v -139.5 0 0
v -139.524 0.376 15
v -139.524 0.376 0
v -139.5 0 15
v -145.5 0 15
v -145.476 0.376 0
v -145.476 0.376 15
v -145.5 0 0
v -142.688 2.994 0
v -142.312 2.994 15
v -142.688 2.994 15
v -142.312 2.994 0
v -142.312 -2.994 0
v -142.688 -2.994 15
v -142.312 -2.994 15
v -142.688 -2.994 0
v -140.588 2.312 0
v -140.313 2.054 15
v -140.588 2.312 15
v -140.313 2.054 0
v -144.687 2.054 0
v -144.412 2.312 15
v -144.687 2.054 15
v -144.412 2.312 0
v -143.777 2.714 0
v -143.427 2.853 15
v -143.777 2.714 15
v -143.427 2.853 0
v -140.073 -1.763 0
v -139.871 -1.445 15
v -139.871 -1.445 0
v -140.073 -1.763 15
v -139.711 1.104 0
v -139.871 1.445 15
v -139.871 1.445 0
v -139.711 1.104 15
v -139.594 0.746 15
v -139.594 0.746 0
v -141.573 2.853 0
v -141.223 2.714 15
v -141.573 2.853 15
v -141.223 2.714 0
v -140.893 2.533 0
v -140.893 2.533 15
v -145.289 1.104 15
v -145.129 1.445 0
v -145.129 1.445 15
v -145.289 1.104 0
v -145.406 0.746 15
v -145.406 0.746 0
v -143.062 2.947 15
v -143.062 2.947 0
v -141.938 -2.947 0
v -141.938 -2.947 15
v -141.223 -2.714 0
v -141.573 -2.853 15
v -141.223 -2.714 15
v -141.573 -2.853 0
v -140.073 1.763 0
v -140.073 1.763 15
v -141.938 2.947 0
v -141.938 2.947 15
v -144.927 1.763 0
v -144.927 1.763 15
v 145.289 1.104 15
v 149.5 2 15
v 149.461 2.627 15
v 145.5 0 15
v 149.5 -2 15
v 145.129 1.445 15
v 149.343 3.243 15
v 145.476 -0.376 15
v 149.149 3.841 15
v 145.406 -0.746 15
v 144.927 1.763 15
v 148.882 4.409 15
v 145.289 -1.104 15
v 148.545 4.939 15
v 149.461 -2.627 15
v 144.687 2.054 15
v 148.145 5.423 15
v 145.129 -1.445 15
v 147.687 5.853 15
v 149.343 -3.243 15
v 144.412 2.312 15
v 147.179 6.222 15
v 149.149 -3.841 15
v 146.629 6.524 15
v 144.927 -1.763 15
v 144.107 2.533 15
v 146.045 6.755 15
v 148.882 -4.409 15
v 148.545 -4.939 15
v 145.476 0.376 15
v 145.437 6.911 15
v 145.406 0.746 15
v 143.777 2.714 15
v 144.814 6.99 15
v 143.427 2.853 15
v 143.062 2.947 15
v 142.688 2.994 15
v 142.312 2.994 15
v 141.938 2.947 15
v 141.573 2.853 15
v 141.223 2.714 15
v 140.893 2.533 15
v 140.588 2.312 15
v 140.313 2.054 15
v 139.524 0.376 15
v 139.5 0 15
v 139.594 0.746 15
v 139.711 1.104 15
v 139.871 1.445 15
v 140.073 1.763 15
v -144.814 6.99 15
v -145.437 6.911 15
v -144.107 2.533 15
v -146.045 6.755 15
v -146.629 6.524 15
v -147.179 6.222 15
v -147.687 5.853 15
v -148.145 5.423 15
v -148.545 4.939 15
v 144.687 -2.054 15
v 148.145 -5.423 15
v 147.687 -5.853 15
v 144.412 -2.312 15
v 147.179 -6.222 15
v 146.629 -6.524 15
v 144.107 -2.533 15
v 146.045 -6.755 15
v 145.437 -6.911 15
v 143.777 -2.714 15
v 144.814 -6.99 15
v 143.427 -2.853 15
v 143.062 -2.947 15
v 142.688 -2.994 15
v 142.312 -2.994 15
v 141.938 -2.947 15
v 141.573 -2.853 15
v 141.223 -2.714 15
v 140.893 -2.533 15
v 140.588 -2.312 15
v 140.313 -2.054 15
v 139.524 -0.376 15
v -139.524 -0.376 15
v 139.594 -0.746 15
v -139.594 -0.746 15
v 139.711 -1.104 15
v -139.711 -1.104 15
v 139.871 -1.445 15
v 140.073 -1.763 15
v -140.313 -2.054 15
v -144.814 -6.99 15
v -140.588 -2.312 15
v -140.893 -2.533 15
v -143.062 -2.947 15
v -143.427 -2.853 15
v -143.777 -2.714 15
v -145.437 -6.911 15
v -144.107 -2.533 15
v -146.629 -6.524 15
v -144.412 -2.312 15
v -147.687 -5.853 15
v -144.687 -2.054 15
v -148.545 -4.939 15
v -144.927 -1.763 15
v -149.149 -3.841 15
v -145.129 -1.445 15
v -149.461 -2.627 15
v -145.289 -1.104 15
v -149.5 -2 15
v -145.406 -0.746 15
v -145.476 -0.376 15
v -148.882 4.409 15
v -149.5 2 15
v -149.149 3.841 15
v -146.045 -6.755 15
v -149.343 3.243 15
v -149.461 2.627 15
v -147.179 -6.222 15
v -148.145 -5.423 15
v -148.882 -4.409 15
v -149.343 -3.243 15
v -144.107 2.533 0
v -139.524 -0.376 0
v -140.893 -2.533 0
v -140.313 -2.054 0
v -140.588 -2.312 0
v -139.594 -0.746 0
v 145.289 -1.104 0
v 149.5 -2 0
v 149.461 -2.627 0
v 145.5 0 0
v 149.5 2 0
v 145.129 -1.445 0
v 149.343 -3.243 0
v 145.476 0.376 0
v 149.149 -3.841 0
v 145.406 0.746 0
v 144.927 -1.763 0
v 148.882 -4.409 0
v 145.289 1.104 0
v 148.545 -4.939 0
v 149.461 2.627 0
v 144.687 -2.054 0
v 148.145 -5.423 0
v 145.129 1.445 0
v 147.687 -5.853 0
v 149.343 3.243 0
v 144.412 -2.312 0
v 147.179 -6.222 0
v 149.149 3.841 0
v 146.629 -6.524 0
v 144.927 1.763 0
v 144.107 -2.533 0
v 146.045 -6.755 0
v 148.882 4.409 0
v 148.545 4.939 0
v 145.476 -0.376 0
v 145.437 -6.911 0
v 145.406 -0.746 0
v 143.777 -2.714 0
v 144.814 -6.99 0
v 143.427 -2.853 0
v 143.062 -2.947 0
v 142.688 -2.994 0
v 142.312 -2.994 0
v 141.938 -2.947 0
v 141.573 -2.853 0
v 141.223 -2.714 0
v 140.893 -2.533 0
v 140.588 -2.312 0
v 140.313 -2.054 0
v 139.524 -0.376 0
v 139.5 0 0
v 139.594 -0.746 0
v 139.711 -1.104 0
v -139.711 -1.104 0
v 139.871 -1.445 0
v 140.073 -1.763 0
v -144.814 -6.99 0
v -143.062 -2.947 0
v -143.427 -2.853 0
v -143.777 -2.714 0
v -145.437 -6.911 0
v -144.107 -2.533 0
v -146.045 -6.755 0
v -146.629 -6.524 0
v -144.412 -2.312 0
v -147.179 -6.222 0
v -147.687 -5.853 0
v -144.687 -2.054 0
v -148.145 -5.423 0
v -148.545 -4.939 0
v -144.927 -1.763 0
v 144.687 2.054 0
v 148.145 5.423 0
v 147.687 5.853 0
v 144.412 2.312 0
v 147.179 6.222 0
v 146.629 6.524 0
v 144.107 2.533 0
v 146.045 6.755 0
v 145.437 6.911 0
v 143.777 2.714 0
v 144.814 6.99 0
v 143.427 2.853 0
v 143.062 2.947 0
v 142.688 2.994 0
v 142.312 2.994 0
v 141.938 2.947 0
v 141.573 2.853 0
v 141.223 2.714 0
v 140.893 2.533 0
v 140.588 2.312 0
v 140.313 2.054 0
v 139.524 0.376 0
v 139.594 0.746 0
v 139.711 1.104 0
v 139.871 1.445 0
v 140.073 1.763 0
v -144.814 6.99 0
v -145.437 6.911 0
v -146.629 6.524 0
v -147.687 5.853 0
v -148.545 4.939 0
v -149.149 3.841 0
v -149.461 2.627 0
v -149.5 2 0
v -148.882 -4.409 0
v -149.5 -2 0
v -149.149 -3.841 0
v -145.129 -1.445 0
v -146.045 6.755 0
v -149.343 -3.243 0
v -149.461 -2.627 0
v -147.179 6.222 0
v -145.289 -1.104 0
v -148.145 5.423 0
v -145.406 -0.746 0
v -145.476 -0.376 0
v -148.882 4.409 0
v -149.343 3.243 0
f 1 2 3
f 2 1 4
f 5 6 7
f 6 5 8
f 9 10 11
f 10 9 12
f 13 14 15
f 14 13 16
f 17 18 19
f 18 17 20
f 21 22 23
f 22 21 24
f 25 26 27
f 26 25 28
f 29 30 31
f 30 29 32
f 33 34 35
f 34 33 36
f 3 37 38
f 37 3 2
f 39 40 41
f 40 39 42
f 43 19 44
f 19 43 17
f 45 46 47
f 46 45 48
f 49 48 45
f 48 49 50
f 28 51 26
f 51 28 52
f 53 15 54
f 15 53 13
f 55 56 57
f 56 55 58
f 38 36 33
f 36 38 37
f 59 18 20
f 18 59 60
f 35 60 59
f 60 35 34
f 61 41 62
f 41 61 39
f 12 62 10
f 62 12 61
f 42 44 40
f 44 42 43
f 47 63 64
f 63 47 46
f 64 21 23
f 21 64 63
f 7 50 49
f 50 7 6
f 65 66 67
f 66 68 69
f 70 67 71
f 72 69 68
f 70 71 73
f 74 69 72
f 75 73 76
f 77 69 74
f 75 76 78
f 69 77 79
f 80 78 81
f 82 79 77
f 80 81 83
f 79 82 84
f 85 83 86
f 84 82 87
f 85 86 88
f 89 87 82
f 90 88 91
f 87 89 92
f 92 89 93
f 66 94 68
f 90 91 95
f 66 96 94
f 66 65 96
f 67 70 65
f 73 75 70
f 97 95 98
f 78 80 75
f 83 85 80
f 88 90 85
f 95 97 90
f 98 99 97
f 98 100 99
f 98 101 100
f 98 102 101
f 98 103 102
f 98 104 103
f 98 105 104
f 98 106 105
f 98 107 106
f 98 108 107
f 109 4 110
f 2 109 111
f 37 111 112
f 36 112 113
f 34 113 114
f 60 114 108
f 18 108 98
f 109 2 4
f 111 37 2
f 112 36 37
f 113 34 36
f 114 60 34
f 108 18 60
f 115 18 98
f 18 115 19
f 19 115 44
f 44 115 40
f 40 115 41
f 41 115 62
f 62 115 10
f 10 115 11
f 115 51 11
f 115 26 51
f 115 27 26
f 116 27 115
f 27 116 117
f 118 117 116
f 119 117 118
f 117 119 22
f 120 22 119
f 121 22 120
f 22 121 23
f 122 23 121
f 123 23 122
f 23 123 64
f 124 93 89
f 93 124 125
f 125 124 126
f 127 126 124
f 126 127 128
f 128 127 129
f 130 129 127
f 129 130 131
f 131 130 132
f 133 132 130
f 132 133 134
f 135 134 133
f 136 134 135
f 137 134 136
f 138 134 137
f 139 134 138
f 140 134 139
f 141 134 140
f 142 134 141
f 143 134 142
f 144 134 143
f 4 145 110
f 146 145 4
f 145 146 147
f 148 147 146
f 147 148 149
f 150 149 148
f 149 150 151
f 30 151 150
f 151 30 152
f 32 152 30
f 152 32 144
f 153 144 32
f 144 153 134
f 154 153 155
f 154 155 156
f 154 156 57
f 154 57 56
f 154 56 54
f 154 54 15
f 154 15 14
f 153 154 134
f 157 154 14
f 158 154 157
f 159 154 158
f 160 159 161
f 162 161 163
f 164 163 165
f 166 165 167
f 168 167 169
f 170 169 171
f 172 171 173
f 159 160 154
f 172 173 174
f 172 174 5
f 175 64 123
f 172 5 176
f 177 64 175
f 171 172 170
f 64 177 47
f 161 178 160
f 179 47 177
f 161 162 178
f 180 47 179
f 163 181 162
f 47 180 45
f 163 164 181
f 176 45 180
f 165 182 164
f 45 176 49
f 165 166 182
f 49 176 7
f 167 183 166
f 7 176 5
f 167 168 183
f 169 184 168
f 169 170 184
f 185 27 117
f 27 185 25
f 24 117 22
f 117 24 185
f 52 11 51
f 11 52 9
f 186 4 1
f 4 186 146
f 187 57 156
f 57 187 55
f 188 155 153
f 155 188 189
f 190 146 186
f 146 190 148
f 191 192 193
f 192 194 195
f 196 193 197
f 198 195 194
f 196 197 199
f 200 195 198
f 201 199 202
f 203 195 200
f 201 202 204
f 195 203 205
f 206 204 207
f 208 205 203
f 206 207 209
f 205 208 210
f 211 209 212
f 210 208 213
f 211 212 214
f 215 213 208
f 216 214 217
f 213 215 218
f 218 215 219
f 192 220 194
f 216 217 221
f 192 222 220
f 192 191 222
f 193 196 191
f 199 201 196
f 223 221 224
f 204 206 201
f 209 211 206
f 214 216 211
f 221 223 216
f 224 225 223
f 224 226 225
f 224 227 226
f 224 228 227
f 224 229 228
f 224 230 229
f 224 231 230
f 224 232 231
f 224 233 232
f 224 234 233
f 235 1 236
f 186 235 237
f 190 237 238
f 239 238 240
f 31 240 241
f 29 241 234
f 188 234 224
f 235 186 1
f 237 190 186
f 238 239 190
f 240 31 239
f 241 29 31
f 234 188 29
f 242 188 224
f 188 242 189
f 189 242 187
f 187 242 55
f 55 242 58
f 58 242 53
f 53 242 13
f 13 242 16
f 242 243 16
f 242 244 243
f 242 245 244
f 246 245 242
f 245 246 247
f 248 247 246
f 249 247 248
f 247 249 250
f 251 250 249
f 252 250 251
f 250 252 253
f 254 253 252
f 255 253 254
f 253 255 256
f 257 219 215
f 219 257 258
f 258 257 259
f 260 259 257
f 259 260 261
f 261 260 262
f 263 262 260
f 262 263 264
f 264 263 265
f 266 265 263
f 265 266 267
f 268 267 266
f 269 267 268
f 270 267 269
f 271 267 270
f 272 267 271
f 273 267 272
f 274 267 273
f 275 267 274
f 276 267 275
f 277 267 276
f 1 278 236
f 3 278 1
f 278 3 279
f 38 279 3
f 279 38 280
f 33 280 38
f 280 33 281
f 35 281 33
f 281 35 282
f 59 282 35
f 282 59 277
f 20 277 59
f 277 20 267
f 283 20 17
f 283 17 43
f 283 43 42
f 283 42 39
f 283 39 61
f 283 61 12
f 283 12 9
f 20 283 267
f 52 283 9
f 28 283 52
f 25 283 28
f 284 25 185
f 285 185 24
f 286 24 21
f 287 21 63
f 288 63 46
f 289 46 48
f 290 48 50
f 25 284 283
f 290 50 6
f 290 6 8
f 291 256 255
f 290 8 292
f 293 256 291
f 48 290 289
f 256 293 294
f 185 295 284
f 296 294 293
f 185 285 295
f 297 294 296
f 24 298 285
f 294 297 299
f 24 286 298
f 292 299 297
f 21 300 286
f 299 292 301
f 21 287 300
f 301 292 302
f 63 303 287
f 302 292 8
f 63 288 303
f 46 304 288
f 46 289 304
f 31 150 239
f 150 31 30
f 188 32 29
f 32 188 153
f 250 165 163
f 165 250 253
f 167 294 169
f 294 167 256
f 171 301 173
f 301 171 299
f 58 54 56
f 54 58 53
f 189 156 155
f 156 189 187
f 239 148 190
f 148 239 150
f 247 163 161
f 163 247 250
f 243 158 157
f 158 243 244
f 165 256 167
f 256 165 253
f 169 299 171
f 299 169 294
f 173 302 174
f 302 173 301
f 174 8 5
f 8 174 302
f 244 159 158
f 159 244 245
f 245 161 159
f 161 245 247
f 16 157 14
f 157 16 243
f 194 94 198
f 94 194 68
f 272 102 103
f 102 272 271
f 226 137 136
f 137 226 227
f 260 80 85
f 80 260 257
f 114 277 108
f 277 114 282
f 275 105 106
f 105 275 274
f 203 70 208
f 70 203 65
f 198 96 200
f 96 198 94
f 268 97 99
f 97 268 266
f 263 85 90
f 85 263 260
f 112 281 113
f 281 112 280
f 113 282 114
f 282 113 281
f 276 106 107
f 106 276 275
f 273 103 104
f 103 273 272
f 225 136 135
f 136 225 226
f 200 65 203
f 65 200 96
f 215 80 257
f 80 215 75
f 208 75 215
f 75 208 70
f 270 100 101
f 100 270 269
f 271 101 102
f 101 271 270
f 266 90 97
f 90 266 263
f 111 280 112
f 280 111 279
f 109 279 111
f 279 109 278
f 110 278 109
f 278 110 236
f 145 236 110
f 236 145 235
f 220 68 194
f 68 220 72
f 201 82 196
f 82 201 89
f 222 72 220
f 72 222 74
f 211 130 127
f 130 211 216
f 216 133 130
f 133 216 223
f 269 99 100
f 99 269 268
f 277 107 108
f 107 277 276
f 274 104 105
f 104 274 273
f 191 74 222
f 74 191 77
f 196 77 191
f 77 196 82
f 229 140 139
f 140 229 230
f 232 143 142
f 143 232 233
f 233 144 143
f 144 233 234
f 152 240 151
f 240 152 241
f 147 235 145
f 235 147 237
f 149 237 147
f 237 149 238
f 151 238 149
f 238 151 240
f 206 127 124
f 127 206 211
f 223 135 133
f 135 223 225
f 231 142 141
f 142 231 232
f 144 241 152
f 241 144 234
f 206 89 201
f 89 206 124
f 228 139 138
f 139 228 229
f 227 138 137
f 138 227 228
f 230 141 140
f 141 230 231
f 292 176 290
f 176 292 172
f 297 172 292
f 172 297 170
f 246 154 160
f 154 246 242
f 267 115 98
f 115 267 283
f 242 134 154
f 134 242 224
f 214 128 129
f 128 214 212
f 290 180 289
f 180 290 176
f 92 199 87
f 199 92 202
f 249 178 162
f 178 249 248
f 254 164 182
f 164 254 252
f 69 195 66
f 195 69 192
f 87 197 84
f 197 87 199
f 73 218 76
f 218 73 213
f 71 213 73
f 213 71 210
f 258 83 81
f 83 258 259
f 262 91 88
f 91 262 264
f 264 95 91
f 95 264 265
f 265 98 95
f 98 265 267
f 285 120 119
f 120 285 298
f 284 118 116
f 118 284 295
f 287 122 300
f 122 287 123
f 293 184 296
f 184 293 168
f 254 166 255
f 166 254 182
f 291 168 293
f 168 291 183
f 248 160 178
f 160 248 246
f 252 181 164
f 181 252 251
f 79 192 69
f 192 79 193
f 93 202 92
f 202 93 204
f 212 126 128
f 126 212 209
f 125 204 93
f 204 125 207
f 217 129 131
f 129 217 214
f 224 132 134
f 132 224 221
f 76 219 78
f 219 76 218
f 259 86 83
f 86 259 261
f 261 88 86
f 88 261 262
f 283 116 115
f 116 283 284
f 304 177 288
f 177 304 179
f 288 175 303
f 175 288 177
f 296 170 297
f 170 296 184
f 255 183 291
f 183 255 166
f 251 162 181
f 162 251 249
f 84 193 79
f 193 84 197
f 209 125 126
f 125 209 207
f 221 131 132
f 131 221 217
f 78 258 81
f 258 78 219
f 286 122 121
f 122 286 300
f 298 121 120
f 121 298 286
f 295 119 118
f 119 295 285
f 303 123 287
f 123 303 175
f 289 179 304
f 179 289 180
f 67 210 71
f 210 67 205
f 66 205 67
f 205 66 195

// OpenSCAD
$fn = 50;


difference() {
	union() {
		hull() {
			translate(v = [-144.5000000000, 2.0000000000, 0]) {
				cylinder(h = 15, r = 5);
			}
			translate(v = [144.5000000000, 2.0000000000, 0]) {
				cylinder(h = 15, r = 5);
			}
			translate(v = [-144.5000000000, -2.0000000000, 0]) {
				cylinder(h = 15, r = 5);
			}
			translate(v = [144.5000000000, -2.0000000000, 0]) {
				cylinder(h = 15, r = 5);
			}
		}
	}
	union() {
		translate(v = [-142.5000000000, 0.0000000000, 0]) {
			cylinder(h = 15, r = 3.0000000000);
		}
		translate(v = [142.5000000000, 0.0000000000, 0]) {
			cylinder(h = 15, r = 3.0000000000);
		}
		translate(v = [-142.5000000000, 0.0000000000, 0]) {
			cylinder(h = 15, r = 1.5000000000);
		}
		translate(v = [142.5000000000, 0.0000000000, 0]) {
			cylinder(h = 15, r = 1.5000000000);
		}
		translate(v = [-142.5000000000, 0.0000000000, 0]) {
			cylinder(h = 15, r = 1.5000000000);
		}
		translate(v = [142.5000000000, 0.0000000000, 0]) {
			cylinder(h = 15, r = 1.5000000000);
		}
		translate(v = [-142.5000000000, 0.0000000000, 0]) {
			cylinder(h = 15, r = 1.5000000000);
		}
		translate(v = [142.5000000000, 0.0000000000, 0]) {
			cylinder(h = 15, r = 1.5000000000);
		}
	}
}
